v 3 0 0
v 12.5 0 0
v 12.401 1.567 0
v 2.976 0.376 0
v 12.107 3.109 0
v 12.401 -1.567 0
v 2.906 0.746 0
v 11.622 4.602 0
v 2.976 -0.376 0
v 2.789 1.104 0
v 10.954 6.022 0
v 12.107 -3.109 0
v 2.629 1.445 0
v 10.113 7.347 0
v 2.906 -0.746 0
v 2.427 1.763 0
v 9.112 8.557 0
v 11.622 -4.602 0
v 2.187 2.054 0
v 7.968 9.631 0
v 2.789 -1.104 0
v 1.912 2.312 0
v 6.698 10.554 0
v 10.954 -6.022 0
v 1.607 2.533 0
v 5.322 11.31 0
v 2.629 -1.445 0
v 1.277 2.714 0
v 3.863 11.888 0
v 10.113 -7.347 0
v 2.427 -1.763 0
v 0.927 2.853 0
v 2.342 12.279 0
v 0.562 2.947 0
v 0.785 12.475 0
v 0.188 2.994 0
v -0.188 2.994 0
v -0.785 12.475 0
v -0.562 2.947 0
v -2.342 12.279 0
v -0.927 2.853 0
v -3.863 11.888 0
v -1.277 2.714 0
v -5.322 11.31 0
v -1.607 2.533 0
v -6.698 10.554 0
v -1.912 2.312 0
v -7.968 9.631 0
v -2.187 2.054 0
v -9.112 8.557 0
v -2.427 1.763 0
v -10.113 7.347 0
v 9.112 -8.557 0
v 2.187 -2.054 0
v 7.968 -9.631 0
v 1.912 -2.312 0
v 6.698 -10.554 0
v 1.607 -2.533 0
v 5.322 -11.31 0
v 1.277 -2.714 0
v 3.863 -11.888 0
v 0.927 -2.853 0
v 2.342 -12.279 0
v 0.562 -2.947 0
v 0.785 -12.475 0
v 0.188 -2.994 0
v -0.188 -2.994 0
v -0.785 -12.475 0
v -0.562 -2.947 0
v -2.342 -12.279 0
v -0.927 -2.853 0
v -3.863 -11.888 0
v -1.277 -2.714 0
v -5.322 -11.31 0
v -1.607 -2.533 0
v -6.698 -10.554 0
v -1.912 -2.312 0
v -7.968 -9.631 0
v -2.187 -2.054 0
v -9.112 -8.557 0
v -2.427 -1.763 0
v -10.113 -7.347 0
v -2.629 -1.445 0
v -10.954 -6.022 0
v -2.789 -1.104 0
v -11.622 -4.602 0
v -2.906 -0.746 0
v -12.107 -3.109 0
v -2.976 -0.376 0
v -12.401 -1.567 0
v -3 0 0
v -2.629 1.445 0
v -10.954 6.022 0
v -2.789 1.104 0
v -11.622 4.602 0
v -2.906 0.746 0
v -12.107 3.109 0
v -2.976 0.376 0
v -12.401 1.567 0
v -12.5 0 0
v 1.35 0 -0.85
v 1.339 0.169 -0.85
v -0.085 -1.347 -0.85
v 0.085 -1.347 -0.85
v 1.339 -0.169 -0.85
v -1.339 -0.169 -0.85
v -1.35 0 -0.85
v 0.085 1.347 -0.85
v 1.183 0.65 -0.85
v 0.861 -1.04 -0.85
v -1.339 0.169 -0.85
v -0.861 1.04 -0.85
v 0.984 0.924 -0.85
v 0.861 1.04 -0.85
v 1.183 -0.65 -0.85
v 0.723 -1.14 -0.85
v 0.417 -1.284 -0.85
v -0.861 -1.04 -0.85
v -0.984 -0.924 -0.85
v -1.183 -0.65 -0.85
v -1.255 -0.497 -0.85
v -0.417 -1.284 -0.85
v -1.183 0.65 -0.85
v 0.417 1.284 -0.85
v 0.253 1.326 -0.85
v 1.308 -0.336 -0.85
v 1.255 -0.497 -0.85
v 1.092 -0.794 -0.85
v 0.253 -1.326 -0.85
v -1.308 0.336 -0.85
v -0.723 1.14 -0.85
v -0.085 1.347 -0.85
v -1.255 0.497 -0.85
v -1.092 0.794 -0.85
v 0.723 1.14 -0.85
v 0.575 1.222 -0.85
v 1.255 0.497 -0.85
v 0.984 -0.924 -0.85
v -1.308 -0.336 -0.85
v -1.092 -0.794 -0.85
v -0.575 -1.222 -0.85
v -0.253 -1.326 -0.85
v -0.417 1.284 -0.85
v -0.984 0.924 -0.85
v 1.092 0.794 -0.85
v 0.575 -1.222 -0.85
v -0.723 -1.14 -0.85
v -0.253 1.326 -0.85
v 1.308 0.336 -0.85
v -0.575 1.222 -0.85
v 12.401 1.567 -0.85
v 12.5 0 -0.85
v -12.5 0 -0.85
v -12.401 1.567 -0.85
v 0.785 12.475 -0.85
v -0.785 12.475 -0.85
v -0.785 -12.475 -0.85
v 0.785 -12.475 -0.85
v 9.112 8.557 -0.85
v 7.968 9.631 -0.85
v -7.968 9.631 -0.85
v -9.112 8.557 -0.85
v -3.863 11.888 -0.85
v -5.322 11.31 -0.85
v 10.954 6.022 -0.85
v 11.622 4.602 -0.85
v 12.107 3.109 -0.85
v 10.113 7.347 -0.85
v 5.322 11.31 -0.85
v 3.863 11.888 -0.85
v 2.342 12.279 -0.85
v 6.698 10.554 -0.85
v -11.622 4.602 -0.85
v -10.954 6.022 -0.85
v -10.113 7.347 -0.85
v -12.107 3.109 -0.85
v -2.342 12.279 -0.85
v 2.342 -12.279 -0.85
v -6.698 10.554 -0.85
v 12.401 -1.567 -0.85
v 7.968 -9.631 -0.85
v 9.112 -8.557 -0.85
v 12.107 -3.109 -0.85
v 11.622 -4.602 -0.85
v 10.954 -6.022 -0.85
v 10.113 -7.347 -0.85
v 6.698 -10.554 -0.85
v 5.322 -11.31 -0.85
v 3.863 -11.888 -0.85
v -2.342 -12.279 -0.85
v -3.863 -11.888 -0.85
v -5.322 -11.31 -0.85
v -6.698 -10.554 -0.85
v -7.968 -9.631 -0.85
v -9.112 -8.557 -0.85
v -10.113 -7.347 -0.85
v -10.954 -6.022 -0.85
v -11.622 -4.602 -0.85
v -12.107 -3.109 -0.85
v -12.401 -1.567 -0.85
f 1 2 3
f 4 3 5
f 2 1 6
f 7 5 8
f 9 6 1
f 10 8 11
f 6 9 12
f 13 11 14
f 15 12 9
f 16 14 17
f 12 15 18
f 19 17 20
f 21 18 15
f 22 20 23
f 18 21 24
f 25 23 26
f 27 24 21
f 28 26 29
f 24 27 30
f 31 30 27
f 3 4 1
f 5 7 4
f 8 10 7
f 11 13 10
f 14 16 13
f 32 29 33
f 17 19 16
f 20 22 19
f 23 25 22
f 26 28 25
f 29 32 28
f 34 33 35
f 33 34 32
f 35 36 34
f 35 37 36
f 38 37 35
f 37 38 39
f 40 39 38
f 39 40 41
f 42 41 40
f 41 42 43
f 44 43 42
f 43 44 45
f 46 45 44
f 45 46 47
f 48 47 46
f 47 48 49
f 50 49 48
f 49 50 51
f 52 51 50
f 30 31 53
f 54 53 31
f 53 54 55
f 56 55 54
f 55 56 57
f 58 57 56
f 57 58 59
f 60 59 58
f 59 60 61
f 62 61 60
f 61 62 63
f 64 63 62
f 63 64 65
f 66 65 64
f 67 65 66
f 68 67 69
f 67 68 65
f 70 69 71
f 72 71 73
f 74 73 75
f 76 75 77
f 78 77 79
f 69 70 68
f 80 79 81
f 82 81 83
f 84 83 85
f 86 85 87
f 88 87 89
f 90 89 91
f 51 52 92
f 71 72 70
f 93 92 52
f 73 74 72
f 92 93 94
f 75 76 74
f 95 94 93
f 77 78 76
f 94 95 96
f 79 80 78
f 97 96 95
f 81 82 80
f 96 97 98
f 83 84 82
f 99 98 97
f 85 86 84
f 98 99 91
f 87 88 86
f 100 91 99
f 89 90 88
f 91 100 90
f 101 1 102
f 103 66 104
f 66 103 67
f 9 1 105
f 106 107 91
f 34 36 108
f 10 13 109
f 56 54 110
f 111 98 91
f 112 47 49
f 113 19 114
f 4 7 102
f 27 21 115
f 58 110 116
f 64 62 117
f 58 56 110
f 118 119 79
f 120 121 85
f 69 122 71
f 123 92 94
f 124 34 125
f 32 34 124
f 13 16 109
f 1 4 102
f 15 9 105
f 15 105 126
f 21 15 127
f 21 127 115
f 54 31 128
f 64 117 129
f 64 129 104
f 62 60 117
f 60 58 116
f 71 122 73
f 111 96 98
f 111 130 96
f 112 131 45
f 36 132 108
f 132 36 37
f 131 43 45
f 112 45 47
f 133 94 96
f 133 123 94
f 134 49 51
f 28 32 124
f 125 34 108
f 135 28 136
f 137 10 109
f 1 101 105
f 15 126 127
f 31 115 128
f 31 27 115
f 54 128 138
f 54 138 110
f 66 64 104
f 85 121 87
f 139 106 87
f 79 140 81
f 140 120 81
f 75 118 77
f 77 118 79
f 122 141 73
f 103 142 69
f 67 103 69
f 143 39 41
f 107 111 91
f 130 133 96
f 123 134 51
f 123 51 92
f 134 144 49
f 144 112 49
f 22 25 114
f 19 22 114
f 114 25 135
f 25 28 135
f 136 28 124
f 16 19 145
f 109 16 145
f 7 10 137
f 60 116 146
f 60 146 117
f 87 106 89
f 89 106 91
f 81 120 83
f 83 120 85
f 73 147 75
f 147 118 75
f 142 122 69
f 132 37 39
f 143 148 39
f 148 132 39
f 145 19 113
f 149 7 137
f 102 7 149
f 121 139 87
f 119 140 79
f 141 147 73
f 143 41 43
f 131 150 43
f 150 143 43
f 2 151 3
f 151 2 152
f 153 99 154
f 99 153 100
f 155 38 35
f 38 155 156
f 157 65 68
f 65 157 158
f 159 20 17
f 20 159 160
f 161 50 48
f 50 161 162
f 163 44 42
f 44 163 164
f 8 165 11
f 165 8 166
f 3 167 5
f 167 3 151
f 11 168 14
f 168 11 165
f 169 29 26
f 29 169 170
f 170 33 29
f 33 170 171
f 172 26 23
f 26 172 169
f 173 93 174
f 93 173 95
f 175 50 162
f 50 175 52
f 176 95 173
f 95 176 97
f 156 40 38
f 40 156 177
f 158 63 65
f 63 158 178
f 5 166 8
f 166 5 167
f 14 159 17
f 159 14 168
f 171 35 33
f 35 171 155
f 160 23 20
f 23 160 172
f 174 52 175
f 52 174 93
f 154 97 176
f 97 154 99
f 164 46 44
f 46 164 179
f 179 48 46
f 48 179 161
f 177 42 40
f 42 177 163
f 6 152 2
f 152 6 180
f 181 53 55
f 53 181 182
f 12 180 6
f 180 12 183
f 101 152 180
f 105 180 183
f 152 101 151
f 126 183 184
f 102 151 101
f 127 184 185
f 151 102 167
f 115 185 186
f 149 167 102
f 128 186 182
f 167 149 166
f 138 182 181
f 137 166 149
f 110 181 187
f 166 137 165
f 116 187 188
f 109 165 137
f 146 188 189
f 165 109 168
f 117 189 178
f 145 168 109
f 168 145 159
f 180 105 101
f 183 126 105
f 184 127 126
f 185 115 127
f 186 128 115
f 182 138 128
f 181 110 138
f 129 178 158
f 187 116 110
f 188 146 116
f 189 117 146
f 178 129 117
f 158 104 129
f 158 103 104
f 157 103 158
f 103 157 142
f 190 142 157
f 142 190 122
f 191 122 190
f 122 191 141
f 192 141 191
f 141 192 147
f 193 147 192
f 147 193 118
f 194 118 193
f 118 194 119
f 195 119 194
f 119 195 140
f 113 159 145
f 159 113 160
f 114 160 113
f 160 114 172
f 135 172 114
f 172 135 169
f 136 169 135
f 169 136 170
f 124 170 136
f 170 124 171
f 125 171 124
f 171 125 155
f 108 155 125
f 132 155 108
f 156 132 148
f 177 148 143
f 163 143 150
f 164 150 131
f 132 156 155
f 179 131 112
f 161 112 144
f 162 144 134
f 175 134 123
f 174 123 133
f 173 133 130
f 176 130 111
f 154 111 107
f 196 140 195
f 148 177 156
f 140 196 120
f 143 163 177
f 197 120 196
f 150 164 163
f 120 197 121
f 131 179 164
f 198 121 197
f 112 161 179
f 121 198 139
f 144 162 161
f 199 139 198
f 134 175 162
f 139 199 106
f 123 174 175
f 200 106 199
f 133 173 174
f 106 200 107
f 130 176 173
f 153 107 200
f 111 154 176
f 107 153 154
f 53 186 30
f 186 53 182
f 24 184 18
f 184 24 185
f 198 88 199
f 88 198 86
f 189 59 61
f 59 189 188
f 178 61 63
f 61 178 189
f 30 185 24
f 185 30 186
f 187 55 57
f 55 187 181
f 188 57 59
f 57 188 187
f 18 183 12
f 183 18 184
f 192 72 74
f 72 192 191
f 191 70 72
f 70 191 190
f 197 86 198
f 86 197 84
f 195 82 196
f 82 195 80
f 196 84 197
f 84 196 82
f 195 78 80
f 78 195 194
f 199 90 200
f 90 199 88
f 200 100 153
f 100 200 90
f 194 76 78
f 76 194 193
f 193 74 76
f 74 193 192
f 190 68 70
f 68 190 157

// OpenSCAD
$fn = 50;

difference() {
	union() {
		translate(v = [0, 0, -0.85]) {
			cylinder(h = 0.85, r = 12.5);
		}
	}
	union() {
		translate(v = [0, 0, 0]) {
			rotate(a = [0, 0, 0]) {
				difference() {
					union() {
						translate(v = [0, 0, -3.85]) {
							cylinder(h = 3.85, r = 1.0);
						}
						translate(v = [0, 0, -0.85]) {
							cylinder(h = 0.85, r1 = 1.35, r2 = 3.0);
						}
						translate(v = [0, 0, -3.85]) {
							cylinder(h = 3.85, r = 1.35);
						}
						translate(v = [0, 0, -3.85]) {
							cylinder(h = 3.85, r = 1.0);
						}
					}
					union();
				}
			}
		}
	}
}
